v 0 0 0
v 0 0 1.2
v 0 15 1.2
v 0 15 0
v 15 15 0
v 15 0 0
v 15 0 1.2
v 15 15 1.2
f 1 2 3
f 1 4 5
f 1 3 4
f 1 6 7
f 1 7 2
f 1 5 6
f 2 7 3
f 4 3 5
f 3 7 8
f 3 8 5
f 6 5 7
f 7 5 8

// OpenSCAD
/* Warning, this is a very basic generator with a lot of approximation 
input data : [TFBGA, BKB, 15x15x1.2mm, 324, , A, C04-21148A]
generated by com.zoubworld.electronics.cad.model3d.Basic
Date : Sun Feb 15 10:50:49 CET 2026
*/

//body
color("black")
translate([0,0,0])
cube([15.0,15.0,1.2], center=false);
